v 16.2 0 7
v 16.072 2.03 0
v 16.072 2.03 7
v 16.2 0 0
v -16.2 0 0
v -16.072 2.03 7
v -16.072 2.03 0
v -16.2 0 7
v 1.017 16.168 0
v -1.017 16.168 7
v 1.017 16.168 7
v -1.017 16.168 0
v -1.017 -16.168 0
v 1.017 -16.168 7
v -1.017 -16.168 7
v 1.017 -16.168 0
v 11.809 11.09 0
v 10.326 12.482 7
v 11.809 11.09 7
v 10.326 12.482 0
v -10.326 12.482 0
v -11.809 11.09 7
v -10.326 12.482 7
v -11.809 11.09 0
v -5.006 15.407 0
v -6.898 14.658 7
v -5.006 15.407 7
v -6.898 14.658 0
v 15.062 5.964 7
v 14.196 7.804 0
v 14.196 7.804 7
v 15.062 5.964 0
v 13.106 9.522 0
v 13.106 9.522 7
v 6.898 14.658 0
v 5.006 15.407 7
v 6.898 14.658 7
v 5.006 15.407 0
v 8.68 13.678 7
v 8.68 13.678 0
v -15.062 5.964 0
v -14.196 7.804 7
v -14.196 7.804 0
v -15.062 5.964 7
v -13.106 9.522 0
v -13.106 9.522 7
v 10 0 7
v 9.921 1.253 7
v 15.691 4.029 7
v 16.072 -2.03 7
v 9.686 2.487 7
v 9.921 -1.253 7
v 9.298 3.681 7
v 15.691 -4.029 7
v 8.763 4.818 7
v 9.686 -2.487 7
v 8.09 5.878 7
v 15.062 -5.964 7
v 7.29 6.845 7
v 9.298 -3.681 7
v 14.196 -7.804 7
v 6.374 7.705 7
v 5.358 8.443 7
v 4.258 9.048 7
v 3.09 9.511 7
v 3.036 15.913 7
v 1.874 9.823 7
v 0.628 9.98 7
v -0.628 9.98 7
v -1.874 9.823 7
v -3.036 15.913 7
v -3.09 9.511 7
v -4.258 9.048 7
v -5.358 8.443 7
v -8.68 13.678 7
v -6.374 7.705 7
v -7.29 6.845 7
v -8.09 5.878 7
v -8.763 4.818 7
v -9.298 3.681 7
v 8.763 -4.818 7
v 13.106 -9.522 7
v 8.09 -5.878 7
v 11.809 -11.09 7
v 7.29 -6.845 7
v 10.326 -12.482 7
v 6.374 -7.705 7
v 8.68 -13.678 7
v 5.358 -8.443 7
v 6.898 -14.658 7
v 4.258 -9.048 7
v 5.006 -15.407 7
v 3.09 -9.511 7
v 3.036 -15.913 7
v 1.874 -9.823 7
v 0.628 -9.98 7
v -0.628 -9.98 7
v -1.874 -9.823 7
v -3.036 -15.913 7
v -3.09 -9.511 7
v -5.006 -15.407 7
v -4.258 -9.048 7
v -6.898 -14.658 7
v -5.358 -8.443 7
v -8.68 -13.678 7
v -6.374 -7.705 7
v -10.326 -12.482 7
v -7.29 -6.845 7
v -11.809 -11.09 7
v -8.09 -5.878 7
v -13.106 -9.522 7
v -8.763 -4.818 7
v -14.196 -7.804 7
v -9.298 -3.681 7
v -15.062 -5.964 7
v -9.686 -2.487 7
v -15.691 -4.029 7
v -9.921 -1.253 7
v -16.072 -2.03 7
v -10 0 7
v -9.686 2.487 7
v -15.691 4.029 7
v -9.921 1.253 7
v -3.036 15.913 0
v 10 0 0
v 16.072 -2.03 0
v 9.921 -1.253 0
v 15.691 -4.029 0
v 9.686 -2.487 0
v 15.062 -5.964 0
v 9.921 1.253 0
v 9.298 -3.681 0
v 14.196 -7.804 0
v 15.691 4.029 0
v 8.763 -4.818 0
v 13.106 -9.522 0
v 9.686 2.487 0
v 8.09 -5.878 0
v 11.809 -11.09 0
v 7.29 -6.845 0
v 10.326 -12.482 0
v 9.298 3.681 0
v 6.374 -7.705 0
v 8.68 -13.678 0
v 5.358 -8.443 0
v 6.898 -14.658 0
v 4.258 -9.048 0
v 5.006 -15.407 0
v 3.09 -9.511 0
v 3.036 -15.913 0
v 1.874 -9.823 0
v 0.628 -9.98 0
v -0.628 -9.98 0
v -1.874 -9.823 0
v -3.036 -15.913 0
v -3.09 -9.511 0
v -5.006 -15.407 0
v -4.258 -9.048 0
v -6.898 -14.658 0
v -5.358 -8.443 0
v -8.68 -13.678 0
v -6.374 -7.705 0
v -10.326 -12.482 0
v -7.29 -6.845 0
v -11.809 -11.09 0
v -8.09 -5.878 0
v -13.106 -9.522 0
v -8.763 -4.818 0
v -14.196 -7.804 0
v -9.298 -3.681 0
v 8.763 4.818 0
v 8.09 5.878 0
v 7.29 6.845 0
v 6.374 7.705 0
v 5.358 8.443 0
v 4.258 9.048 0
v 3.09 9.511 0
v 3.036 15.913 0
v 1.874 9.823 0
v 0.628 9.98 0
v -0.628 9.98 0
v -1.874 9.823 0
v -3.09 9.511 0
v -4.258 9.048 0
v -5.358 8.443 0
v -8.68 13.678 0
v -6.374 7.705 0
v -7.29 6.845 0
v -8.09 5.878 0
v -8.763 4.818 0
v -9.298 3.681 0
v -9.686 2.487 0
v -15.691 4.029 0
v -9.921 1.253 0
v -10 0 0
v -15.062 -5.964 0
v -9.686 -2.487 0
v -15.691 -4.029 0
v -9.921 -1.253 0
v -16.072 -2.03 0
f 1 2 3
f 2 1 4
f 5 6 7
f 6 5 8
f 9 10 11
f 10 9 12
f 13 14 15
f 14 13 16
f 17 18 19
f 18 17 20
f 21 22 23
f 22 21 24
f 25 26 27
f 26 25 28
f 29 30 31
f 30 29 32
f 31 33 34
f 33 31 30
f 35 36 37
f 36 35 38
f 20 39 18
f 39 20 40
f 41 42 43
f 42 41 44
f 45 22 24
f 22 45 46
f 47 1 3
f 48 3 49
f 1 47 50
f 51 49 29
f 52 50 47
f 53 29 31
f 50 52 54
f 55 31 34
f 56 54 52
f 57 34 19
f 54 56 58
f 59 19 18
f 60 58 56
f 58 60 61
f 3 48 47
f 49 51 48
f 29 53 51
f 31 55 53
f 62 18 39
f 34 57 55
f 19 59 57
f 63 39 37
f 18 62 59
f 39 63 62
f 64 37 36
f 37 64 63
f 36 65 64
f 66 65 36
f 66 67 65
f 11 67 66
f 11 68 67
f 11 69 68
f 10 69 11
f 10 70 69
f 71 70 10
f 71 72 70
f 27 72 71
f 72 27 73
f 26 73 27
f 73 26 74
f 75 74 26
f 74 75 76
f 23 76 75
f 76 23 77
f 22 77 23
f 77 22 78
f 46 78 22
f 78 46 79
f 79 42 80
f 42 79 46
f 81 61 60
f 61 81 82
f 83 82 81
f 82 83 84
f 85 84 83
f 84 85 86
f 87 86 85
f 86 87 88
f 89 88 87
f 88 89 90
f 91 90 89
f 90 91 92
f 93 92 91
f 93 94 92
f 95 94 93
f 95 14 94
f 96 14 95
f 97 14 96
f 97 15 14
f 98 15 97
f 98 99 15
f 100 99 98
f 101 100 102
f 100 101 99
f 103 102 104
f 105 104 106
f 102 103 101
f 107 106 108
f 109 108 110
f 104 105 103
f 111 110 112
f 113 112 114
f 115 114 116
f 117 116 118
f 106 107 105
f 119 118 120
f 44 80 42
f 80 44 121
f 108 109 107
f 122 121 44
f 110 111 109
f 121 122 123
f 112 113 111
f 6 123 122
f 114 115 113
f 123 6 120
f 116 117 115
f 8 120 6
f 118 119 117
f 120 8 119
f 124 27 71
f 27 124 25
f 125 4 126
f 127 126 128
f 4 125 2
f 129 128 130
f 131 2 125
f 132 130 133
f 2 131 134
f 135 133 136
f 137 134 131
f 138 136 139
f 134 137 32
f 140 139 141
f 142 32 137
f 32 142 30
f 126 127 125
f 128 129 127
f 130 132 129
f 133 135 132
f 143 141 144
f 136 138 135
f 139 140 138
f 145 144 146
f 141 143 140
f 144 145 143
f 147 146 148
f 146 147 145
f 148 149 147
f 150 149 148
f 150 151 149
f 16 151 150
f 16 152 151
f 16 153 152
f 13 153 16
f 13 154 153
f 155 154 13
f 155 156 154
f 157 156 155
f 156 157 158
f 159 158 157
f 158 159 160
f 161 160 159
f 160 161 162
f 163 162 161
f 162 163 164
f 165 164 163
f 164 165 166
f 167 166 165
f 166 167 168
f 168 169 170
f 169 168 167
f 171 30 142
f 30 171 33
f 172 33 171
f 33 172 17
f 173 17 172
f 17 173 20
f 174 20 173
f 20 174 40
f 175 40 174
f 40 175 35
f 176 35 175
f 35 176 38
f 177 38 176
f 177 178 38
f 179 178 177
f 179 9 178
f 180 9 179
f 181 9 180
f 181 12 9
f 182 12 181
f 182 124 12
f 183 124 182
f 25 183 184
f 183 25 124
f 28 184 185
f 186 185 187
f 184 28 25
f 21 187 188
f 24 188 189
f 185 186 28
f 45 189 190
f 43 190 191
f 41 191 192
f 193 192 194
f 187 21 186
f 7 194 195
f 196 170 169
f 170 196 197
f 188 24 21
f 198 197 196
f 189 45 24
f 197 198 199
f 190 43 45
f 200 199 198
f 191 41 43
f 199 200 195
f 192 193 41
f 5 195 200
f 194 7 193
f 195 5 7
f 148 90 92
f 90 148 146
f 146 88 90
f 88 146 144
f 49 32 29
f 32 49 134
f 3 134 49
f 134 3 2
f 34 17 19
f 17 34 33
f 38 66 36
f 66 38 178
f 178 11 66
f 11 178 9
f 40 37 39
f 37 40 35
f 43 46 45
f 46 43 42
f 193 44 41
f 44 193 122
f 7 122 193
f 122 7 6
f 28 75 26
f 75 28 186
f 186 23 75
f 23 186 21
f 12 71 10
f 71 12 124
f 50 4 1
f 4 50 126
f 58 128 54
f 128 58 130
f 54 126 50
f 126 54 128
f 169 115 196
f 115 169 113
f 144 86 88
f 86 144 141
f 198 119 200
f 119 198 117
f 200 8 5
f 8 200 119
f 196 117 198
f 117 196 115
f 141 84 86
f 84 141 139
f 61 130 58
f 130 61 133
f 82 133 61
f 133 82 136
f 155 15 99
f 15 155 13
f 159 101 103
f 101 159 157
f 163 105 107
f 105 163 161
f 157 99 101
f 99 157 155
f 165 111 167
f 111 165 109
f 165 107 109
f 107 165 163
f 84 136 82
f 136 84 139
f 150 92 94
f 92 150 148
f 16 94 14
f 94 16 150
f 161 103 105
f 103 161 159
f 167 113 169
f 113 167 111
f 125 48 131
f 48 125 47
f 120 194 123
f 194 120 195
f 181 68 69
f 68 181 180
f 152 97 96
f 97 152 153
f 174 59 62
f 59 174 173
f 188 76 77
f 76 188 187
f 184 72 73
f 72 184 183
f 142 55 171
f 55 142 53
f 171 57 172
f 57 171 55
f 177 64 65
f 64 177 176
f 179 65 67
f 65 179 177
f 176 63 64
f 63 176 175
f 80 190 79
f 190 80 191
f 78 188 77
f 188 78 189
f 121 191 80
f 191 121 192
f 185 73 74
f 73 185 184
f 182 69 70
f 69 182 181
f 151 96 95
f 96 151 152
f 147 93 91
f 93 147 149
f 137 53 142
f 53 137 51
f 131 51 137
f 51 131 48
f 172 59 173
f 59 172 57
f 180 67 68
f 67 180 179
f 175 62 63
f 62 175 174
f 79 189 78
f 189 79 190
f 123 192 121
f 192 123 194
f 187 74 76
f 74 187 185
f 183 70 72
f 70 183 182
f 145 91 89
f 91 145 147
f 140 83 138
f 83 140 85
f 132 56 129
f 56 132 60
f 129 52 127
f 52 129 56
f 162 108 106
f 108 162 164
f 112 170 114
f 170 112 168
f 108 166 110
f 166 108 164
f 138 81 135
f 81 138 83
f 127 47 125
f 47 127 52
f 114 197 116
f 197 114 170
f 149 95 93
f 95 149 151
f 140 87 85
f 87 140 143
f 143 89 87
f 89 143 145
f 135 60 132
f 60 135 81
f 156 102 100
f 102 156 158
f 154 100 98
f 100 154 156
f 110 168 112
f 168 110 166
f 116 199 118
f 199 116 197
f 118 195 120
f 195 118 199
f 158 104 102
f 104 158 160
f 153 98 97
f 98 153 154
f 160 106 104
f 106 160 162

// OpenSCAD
$fn = 50;


difference() {
	union() {
		translate(v = [0, 0, 0]) {
			rotate(a = [0, 0, 0]) {
				cylinder(h = 7, r = 16.2000000000);
			}
		}
	}
	union() {
		translate(v = [0, 0, 0]) {
			rotate(a = [0, 0, 0]) {
				cylinder(h = 7, r = 10.0000000000);
			}
		}
	}
}
